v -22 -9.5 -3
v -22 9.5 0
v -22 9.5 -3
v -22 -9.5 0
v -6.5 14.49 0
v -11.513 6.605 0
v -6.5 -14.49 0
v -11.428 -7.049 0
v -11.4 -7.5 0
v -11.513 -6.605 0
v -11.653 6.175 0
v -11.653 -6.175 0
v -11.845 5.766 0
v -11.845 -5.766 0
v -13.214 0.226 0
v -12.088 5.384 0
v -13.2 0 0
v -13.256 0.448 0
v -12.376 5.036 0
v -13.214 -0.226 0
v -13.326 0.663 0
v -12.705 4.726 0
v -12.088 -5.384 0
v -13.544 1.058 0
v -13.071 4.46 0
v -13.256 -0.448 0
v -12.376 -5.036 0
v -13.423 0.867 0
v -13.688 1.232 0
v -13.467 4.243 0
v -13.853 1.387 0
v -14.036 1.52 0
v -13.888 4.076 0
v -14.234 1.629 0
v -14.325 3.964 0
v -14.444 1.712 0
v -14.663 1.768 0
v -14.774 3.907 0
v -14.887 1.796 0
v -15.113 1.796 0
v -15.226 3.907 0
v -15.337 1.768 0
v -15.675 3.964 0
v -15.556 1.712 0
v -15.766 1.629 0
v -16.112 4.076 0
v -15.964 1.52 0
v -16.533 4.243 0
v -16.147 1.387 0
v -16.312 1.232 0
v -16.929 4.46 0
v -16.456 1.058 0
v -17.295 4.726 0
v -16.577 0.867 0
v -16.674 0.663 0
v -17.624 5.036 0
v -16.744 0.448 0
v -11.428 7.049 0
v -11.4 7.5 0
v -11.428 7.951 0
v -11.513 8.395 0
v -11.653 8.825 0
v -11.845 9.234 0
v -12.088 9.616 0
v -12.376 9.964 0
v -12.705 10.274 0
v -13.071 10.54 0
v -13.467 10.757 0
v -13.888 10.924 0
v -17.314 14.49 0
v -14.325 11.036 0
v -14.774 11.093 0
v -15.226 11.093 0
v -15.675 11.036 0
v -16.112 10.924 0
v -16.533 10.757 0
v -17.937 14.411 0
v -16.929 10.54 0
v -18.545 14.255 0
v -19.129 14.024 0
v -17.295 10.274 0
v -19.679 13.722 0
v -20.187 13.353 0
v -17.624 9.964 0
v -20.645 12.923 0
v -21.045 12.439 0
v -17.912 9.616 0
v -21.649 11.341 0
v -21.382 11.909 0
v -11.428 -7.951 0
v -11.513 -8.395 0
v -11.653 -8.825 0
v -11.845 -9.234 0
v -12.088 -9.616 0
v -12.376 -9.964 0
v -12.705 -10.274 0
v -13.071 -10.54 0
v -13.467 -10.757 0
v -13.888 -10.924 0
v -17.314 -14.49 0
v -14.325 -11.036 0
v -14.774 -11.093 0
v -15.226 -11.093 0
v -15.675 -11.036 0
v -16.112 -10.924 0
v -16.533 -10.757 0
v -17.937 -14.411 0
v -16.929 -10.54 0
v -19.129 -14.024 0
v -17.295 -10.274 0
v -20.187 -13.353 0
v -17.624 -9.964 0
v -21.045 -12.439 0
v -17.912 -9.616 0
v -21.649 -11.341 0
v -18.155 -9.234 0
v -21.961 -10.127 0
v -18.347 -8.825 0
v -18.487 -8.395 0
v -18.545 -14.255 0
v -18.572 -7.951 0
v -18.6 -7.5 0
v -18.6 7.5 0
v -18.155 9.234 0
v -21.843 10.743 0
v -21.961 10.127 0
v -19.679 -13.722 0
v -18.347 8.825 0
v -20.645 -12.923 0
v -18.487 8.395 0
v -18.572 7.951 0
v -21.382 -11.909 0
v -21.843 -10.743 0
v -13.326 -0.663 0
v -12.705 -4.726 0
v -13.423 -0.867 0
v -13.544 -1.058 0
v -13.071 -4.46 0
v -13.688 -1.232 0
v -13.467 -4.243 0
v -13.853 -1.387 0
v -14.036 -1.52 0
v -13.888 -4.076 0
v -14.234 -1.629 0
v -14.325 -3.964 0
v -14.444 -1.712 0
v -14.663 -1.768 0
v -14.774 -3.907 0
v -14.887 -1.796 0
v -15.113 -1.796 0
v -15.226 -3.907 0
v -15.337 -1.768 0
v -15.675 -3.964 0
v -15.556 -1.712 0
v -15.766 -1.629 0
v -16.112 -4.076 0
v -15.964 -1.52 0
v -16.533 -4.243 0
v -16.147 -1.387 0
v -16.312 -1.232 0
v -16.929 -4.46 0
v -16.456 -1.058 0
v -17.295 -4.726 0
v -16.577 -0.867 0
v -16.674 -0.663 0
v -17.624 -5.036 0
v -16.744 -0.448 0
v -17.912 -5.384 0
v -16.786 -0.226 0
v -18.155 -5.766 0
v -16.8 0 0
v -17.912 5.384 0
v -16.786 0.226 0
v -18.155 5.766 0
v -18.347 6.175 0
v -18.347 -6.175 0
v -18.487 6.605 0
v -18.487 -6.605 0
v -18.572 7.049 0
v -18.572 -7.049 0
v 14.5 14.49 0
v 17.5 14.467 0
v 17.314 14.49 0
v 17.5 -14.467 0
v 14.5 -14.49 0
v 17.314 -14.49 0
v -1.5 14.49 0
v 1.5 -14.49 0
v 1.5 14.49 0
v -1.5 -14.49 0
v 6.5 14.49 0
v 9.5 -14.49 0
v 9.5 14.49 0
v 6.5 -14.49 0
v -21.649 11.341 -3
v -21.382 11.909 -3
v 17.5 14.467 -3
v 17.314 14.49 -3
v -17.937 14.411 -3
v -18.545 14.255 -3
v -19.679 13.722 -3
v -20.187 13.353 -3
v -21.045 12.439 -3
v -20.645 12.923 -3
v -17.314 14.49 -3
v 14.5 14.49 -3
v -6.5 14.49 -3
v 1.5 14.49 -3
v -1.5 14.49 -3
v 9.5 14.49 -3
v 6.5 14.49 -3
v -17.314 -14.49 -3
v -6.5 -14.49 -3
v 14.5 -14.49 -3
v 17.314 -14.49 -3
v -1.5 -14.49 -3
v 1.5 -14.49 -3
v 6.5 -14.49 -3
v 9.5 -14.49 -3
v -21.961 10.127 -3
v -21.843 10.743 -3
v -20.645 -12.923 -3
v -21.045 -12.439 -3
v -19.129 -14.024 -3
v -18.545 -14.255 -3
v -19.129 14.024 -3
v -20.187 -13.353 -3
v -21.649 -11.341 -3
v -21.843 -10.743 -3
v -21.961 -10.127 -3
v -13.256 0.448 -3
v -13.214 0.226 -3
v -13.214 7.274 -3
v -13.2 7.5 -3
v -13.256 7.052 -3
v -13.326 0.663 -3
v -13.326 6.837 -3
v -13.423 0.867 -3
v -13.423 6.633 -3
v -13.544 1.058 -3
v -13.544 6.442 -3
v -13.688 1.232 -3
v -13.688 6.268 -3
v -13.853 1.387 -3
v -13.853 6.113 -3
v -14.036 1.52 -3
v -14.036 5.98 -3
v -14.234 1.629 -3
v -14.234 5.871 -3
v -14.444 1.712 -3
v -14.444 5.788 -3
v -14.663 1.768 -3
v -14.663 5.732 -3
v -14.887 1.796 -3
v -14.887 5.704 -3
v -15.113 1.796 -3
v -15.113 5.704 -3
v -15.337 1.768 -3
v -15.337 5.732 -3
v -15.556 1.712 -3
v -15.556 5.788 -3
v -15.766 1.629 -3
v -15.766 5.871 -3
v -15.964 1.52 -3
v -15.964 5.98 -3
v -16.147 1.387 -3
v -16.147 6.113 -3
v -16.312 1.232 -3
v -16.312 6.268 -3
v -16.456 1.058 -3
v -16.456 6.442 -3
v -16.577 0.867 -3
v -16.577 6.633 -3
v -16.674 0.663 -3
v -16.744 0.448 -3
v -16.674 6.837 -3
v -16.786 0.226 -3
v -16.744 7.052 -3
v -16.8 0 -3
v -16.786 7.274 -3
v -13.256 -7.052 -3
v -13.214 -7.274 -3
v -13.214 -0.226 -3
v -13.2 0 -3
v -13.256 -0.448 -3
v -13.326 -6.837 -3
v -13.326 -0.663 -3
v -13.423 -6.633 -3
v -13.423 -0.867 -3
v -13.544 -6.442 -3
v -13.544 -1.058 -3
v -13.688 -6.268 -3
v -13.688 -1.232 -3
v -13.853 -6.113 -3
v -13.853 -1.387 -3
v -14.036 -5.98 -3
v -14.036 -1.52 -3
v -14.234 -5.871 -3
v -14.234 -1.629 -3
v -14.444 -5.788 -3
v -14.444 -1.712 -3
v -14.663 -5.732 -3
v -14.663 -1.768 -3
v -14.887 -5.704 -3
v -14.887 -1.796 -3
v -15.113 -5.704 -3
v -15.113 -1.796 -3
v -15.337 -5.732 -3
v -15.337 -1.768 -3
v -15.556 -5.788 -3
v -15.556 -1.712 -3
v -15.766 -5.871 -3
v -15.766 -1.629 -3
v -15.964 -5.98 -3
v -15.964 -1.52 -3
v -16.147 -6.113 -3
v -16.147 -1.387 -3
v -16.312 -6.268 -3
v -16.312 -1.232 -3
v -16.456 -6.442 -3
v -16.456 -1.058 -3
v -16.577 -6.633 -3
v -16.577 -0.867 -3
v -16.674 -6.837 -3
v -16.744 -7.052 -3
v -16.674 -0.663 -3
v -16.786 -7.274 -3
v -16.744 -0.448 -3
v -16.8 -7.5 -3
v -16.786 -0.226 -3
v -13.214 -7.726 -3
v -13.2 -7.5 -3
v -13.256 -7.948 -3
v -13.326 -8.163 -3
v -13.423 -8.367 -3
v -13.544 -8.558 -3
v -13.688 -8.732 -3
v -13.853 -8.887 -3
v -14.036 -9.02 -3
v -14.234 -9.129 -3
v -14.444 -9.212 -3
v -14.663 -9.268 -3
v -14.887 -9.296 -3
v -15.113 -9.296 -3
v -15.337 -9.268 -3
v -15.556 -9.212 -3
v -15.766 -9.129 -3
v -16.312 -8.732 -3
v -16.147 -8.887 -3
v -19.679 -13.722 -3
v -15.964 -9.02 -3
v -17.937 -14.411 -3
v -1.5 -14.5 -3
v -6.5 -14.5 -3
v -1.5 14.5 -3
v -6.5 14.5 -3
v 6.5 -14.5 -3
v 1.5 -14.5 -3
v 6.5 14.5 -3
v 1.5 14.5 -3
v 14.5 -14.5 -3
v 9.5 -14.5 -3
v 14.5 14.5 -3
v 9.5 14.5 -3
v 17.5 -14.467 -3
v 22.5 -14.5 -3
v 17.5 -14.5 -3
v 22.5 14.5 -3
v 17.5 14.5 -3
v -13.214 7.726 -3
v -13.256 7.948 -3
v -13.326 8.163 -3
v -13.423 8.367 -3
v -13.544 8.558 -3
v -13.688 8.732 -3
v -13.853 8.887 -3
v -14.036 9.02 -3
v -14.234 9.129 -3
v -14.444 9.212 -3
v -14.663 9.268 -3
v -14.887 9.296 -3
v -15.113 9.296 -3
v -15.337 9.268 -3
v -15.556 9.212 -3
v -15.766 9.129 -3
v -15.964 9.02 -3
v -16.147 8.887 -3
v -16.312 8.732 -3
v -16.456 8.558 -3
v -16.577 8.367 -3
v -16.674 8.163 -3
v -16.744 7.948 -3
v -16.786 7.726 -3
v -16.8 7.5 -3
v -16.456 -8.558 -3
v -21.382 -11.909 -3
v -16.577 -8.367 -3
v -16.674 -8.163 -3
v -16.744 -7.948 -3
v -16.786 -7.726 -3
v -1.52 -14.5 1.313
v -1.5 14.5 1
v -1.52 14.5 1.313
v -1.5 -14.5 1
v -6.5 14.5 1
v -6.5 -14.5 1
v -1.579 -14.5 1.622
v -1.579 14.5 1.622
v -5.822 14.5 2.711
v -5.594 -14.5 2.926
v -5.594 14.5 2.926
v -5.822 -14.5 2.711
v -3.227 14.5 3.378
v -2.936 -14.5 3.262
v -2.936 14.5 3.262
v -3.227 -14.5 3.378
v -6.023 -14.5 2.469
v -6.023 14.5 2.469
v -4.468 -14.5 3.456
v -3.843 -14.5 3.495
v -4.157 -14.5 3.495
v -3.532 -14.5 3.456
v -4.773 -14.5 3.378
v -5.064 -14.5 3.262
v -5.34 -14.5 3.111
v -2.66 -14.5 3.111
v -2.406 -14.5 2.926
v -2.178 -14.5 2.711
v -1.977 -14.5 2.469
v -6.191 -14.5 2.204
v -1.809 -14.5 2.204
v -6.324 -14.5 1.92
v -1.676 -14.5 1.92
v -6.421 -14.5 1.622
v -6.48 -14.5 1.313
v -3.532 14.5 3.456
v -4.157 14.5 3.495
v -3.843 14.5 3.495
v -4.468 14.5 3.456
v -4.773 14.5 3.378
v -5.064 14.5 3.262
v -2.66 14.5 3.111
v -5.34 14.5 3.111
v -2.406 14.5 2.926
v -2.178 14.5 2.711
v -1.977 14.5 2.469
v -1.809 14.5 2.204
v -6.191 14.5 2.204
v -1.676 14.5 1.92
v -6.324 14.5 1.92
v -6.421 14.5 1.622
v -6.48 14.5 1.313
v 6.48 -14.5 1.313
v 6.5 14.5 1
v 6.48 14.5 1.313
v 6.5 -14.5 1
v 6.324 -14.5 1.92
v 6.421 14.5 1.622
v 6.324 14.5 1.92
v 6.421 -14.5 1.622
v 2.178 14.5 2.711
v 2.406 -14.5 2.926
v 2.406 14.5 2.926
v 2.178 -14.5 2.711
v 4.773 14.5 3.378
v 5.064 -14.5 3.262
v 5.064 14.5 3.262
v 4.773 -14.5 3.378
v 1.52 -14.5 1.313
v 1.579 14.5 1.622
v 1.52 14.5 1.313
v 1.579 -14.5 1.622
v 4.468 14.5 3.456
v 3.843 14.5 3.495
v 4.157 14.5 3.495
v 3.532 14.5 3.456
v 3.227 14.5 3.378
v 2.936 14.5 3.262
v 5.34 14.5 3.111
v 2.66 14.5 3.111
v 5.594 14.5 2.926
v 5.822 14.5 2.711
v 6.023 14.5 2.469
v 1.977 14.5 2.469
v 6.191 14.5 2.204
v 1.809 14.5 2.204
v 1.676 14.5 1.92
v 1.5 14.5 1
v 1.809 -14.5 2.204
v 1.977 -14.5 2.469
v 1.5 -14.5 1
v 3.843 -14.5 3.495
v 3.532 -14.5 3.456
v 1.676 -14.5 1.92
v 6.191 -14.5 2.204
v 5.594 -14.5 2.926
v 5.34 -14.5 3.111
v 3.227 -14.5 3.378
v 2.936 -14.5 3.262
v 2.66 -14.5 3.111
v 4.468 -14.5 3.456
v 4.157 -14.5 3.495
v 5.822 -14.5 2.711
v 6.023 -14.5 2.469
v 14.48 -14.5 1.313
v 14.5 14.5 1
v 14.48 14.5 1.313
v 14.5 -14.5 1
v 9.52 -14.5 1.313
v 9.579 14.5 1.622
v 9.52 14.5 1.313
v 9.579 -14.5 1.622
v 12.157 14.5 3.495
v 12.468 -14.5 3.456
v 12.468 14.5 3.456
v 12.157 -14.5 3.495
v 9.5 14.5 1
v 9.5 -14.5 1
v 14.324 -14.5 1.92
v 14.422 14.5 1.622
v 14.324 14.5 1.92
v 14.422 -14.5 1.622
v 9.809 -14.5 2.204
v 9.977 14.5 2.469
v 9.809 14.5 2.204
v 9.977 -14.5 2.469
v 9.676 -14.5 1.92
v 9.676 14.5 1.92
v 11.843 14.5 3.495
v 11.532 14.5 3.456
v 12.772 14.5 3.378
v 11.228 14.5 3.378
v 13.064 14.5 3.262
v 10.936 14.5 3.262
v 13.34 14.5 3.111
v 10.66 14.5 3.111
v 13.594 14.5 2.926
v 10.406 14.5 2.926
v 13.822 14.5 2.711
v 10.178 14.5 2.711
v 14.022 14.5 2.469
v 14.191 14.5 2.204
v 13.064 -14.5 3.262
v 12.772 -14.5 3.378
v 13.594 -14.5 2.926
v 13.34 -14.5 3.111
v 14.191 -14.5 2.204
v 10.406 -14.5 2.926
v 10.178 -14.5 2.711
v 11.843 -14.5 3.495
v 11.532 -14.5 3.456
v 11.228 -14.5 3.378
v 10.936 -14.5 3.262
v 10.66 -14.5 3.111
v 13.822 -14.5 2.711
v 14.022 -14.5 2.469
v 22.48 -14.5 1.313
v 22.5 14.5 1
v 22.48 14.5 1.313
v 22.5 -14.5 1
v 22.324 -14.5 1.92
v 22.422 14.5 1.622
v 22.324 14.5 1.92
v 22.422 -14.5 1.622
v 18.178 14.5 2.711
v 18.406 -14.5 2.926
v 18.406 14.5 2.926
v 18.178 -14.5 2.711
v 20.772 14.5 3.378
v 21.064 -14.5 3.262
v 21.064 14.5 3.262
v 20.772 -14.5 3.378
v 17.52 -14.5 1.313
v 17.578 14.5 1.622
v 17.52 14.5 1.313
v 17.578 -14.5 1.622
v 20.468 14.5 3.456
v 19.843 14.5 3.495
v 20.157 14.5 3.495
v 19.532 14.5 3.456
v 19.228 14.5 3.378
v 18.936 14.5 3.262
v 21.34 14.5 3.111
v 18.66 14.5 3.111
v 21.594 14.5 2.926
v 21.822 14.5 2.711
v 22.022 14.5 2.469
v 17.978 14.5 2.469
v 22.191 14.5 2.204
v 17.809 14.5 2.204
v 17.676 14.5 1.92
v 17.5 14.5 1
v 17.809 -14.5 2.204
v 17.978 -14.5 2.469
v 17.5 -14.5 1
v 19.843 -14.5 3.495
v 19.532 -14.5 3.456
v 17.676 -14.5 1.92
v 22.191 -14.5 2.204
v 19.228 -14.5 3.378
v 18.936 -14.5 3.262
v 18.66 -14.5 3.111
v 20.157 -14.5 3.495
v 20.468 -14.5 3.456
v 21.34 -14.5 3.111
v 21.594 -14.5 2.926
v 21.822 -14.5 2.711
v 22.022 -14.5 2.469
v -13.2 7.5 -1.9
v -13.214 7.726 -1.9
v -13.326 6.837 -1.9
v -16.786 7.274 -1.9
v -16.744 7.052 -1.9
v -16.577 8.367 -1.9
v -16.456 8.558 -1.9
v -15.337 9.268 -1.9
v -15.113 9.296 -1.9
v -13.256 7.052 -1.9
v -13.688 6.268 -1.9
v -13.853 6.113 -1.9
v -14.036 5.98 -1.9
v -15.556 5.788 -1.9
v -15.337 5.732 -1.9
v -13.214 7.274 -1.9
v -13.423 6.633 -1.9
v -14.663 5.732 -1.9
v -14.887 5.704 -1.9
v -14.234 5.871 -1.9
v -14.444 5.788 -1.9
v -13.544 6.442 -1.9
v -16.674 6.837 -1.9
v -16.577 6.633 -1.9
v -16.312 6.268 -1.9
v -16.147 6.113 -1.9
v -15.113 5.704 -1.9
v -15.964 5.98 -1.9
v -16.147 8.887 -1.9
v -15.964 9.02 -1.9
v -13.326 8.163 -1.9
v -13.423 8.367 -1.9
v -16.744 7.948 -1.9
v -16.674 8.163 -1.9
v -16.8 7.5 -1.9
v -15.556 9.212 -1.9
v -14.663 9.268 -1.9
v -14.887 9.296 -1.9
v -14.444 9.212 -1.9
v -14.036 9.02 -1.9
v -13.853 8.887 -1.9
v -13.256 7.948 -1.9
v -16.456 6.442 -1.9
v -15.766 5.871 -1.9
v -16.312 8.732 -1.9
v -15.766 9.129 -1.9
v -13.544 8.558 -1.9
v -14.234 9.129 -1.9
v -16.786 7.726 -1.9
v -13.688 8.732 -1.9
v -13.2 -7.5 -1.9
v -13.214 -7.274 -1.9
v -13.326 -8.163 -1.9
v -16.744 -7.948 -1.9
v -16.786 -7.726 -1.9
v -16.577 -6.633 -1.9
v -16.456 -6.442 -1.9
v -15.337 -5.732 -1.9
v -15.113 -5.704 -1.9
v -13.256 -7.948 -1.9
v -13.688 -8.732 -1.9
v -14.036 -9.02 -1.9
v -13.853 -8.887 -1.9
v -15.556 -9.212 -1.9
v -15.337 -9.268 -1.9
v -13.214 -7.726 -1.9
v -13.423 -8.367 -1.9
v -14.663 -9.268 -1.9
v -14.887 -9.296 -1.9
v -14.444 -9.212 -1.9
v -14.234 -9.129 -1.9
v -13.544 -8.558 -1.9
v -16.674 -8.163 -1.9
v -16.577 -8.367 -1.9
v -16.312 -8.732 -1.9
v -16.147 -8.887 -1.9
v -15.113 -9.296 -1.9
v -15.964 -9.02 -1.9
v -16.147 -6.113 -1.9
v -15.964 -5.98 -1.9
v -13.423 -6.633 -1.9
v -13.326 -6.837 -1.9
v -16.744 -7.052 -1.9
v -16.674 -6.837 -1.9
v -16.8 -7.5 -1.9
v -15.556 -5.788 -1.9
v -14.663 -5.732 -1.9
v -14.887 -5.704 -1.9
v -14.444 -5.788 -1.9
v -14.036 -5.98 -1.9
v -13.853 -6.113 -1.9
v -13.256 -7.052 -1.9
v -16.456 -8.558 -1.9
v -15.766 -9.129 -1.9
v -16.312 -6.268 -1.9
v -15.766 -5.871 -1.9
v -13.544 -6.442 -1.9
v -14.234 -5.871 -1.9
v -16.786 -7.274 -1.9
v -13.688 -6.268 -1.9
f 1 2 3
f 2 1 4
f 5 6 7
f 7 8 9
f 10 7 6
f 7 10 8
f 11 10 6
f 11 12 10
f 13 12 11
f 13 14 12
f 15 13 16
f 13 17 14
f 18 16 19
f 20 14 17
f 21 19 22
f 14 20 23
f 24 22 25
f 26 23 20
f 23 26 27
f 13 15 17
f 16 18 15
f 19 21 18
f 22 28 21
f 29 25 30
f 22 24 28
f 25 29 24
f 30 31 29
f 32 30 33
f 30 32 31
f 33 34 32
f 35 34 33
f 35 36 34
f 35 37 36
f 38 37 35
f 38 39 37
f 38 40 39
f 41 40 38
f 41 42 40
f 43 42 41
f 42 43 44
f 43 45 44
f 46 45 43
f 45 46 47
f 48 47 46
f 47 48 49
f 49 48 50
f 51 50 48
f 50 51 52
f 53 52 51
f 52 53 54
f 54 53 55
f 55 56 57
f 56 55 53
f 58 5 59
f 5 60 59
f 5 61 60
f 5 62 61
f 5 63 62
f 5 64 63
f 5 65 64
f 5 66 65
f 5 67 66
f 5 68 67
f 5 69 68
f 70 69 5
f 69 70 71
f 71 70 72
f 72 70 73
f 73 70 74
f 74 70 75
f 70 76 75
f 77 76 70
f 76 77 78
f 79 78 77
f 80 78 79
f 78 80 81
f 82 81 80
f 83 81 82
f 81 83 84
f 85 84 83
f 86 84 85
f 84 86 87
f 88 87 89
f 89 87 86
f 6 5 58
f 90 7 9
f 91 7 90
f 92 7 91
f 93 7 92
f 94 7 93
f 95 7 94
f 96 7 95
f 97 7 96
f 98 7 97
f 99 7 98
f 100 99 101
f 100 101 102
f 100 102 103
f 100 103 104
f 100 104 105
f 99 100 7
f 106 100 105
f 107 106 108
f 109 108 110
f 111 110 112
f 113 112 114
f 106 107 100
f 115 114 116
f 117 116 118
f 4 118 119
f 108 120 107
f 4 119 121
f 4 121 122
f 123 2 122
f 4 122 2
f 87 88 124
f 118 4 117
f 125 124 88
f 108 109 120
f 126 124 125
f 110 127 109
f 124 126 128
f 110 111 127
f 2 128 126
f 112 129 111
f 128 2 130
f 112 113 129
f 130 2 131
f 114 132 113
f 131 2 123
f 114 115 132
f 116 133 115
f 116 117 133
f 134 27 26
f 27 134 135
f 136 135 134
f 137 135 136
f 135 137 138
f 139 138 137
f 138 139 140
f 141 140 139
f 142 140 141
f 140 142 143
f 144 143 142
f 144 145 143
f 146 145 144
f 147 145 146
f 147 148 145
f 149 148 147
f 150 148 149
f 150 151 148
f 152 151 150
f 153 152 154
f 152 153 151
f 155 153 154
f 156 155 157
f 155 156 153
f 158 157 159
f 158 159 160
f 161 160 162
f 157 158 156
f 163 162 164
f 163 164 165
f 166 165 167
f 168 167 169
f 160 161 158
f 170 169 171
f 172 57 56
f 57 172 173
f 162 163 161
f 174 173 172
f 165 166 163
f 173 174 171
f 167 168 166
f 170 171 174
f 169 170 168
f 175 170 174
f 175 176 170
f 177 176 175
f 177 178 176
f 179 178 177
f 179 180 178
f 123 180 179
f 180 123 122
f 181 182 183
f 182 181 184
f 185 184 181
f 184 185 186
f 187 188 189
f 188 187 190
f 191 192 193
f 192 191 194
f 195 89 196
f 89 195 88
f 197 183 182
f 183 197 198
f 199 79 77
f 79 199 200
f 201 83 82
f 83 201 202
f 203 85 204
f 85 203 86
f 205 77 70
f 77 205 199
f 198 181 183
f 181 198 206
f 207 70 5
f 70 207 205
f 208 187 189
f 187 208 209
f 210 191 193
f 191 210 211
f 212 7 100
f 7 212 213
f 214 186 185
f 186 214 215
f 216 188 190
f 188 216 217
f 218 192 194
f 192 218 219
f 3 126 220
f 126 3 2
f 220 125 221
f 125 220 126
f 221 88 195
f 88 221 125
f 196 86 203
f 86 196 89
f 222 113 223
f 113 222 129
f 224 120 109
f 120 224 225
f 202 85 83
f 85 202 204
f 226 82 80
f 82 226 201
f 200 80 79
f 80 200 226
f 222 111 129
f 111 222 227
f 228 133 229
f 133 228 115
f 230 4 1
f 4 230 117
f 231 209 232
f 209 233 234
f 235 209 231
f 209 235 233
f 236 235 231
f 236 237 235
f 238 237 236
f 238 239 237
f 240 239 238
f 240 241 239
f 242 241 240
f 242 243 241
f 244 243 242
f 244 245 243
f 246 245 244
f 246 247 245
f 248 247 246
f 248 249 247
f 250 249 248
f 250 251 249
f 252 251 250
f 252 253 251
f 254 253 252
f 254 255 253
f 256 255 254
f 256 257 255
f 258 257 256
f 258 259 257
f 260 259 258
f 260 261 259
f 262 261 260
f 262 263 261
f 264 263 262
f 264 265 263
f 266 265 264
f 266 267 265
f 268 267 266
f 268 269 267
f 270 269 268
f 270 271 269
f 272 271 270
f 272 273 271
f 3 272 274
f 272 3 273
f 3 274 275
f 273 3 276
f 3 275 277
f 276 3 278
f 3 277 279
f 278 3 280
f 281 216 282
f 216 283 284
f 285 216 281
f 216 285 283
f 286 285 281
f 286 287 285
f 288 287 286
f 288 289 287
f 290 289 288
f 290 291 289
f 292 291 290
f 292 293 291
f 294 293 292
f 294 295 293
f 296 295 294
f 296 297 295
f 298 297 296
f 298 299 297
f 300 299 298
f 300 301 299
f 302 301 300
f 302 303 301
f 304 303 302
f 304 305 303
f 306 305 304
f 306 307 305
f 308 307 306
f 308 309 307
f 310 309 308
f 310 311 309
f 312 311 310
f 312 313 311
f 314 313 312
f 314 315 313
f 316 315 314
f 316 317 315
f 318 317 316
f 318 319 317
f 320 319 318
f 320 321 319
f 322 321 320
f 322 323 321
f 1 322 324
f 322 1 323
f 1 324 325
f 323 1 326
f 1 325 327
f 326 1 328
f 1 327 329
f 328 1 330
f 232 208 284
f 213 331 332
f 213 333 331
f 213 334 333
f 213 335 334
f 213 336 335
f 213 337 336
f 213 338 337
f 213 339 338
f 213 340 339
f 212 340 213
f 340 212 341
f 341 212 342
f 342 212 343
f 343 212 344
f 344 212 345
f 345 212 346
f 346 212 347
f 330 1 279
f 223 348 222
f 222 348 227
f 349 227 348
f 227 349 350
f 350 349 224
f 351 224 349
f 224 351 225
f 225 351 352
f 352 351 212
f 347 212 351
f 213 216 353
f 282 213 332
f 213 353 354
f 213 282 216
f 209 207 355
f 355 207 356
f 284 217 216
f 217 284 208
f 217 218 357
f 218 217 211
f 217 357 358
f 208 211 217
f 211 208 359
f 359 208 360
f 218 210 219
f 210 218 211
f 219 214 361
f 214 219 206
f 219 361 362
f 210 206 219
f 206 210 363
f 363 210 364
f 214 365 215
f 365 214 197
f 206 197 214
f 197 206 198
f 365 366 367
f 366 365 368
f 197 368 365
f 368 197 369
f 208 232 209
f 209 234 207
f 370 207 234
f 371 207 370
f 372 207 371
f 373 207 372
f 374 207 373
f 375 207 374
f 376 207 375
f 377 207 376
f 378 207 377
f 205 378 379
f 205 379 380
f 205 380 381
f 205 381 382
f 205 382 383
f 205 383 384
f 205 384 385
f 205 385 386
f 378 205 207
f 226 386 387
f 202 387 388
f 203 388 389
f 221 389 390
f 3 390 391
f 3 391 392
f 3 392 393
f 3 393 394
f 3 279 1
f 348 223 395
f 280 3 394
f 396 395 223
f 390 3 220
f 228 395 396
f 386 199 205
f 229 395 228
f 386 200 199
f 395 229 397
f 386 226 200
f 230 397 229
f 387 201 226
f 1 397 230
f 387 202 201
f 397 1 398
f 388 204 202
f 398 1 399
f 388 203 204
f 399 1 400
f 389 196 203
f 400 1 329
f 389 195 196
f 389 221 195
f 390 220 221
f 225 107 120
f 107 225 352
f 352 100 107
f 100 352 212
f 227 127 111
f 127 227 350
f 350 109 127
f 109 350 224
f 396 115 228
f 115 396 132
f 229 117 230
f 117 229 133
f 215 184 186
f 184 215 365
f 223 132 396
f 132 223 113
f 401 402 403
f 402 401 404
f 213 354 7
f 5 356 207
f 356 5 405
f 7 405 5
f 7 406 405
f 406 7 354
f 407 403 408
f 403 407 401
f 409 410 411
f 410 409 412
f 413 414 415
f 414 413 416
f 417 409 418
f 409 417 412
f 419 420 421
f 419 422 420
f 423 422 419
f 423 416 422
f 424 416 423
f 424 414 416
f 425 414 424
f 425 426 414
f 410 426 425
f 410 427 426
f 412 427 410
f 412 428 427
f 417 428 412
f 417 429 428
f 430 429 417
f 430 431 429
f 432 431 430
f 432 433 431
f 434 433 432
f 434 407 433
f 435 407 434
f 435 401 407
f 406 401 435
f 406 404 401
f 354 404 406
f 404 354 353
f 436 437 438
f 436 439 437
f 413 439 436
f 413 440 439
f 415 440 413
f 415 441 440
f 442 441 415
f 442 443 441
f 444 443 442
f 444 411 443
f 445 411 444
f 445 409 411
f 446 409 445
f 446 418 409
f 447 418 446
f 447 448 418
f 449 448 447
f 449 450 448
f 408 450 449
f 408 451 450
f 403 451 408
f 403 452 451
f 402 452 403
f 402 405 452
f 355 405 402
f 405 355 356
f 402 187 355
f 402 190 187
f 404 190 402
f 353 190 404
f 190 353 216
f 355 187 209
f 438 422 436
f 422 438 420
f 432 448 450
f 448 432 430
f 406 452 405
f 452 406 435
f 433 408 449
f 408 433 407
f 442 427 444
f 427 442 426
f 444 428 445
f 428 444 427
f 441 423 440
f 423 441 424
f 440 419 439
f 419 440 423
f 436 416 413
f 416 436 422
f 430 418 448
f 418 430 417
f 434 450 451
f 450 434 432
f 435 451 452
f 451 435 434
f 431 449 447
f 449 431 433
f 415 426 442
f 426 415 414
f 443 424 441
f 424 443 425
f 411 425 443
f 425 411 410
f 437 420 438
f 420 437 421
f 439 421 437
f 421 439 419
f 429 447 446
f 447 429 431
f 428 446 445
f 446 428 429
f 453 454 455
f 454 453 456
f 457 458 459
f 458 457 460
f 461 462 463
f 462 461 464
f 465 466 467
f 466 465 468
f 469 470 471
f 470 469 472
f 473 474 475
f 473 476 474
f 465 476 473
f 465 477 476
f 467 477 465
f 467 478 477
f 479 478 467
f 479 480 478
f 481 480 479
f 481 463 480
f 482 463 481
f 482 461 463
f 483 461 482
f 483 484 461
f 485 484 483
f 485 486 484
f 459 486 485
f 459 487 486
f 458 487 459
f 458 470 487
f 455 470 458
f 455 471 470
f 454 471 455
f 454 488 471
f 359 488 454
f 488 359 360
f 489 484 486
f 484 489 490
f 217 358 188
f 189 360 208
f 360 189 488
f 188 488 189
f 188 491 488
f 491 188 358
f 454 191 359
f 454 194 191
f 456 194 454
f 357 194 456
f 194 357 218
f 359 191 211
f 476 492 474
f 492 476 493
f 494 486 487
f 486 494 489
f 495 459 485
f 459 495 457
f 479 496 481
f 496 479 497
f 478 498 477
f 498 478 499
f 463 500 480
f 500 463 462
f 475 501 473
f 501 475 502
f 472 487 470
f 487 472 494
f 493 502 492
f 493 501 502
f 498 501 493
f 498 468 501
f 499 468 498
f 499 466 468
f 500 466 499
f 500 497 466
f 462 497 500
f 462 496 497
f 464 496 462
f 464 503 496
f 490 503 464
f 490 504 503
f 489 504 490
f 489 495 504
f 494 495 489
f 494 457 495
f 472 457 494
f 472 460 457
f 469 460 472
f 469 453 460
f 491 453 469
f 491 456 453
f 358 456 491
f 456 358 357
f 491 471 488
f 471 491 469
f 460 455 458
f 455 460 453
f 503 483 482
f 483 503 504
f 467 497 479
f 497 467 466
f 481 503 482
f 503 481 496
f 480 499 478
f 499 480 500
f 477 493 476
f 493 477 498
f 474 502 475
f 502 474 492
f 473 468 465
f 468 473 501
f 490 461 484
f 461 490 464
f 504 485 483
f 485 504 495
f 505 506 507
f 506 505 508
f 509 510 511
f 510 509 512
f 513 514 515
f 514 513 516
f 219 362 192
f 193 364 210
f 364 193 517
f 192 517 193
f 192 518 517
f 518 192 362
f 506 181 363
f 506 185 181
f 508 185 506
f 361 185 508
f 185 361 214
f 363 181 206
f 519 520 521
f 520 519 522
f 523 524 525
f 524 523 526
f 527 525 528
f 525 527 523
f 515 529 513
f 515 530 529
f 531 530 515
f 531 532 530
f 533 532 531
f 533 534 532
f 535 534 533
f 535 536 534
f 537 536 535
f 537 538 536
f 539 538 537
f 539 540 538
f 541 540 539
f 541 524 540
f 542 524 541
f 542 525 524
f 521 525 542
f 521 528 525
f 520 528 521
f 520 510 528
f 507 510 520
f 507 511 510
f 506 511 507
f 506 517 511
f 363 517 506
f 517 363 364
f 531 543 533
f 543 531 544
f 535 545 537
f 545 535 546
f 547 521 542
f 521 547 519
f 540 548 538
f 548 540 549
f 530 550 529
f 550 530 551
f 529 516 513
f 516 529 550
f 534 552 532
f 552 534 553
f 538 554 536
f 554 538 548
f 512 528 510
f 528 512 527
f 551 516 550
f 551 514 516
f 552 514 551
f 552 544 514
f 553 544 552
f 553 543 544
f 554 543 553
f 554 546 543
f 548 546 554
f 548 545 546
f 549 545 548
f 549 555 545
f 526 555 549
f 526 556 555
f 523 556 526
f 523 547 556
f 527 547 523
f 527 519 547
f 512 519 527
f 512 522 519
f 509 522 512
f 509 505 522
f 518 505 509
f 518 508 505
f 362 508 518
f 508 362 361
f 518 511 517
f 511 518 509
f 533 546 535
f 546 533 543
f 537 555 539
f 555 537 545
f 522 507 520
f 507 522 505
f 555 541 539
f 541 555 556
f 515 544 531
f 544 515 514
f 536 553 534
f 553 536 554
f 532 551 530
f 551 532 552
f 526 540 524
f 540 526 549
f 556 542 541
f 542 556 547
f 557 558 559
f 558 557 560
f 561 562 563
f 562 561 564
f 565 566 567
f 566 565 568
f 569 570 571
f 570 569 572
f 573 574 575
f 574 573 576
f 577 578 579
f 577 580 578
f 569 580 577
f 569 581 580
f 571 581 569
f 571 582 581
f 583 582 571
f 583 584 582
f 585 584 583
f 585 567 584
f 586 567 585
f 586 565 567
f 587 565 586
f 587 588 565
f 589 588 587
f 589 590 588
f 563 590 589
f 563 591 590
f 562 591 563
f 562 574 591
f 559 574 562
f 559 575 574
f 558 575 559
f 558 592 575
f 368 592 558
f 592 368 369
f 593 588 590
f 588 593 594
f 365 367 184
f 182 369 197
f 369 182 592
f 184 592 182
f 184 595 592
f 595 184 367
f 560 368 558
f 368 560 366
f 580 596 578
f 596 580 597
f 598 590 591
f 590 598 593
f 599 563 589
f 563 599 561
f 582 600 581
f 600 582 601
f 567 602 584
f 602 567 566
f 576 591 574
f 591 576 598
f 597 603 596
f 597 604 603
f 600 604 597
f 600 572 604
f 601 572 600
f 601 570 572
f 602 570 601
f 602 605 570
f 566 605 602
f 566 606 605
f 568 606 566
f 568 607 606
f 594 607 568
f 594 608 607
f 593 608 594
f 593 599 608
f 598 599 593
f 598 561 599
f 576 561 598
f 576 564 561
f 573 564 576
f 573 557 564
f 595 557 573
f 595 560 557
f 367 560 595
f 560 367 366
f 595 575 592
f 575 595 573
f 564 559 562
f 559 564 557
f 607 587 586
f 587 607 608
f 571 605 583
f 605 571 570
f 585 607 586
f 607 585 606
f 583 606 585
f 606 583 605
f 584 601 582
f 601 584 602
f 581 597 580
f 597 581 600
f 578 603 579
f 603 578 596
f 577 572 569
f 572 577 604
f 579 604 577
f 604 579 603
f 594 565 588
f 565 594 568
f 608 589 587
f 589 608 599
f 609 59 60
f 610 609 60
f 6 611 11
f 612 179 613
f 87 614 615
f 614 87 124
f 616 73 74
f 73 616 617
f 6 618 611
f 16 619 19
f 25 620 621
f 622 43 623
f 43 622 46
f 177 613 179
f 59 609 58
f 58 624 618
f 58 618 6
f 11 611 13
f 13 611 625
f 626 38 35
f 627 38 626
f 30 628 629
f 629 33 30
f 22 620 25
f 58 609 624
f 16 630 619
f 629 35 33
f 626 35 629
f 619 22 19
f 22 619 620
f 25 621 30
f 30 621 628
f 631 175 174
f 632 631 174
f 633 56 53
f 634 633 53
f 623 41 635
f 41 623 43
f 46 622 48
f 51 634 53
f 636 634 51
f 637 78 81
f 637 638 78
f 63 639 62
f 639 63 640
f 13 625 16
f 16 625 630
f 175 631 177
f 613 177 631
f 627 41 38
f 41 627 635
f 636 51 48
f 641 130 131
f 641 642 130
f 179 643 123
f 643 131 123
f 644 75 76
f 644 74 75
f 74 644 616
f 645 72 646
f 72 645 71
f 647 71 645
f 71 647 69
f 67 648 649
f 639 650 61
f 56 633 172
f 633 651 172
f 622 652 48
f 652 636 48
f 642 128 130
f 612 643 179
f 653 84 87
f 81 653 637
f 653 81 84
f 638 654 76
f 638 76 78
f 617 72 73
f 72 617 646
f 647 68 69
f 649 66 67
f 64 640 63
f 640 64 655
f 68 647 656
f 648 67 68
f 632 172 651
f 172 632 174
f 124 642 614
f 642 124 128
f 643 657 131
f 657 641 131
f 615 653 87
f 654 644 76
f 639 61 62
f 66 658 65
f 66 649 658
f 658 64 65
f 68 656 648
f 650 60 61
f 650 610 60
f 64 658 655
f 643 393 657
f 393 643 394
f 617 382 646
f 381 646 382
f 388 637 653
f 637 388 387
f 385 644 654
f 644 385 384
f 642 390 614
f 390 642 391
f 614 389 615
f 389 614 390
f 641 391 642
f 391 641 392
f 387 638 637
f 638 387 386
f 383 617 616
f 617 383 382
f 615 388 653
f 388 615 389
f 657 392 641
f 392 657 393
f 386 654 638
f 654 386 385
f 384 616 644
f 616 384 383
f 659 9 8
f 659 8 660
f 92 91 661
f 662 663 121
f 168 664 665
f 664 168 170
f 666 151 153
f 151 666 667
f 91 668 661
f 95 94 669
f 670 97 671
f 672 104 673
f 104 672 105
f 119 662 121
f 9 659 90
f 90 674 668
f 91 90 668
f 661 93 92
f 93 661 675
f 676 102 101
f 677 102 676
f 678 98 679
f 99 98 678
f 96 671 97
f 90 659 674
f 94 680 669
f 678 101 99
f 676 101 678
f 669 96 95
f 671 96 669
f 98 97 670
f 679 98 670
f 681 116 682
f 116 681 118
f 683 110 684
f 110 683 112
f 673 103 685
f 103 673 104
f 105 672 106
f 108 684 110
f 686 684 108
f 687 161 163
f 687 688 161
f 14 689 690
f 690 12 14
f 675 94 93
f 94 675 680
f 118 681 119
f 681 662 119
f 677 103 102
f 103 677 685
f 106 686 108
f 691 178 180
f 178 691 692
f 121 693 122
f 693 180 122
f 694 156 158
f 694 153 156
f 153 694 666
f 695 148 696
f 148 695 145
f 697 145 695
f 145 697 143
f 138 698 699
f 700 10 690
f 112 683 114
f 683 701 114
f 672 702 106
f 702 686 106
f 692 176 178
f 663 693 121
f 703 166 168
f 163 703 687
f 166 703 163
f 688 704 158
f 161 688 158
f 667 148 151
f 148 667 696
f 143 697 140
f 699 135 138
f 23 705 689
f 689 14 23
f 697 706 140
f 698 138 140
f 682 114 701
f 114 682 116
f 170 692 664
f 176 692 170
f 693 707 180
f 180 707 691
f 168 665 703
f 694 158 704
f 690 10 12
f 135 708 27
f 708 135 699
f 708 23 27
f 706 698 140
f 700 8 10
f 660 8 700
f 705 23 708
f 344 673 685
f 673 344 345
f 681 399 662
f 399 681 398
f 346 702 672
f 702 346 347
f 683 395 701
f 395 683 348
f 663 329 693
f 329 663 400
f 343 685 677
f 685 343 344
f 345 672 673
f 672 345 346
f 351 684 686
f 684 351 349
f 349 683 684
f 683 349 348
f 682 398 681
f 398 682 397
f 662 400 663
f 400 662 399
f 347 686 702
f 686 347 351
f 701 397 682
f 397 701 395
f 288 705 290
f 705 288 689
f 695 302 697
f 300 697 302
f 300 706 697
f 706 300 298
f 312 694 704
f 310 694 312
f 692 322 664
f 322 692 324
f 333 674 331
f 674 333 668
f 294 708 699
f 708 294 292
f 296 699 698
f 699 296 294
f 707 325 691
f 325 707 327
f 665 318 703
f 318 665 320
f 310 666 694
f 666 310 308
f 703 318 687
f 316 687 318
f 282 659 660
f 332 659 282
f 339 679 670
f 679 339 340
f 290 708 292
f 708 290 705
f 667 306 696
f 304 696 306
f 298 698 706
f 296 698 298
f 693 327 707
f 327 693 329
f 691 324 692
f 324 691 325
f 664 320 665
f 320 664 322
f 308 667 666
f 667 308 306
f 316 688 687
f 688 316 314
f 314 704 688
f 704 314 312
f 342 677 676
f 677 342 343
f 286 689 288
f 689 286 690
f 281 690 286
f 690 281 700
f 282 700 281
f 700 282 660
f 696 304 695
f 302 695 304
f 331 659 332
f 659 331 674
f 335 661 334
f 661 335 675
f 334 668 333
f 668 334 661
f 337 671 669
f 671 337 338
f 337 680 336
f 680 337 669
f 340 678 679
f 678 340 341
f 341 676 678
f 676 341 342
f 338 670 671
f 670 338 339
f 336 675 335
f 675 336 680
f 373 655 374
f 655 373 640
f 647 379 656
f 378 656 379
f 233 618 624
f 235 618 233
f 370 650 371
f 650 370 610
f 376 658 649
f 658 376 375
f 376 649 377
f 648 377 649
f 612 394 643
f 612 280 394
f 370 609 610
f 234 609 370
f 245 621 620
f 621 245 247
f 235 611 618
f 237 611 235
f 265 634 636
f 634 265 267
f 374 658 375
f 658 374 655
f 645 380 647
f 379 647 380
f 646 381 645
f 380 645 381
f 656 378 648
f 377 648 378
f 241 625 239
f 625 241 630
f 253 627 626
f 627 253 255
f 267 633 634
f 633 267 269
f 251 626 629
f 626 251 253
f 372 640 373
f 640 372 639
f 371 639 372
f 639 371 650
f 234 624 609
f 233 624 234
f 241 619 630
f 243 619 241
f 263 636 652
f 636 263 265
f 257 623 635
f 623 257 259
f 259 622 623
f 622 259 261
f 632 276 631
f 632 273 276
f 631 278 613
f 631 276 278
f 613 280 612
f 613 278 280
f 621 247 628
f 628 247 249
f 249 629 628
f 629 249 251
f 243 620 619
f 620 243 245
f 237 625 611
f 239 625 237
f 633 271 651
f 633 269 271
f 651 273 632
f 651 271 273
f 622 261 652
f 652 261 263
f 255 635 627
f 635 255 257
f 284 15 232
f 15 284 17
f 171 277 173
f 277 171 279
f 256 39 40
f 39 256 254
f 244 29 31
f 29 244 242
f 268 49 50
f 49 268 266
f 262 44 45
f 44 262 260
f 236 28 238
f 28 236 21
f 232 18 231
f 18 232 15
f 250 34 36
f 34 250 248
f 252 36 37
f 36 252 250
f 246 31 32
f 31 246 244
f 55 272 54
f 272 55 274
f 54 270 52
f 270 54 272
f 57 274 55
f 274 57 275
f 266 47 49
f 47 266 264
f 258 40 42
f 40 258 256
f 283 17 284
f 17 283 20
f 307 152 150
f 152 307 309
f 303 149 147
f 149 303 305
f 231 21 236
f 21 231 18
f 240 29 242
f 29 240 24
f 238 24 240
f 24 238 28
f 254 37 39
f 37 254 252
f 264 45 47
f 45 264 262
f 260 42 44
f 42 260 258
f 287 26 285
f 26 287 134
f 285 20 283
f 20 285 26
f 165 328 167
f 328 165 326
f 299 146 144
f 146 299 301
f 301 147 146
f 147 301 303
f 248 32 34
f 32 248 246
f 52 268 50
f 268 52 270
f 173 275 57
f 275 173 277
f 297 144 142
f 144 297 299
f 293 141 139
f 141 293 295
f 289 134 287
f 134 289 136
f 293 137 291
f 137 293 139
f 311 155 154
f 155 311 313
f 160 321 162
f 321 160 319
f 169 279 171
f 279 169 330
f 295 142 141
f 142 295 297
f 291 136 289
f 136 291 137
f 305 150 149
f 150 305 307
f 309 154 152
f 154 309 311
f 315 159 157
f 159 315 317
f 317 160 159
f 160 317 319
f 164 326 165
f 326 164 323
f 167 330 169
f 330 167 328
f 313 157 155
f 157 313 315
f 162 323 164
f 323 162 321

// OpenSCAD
$fn = 50;


difference() {
	union() {
		translate(v = [0, 0, -3]) {
			hull() {
				translate(v = [-17.0000000000, 9.5000000000, 0]) {
					cylinder(h = 3, r = 5);
				}
				translate(v = [17.0000000000, 9.5000000000, 0]) {
					cylinder(h = 3, r = 5);
				}
				translate(v = [-17.0000000000, -9.5000000000, 0]) {
					cylinder(h = 3, r = 5);
				}
				translate(v = [17.0000000000, -9.5000000000, 0]) {
					cylinder(h = 3, r = 5);
				}
			}
		}
		translate(v = [-4.0000000000, 14.5000000000, -1.5000000000]) {
			rotate(a = [90, 0, 0]) {
				hull() {
					translate(v = [-0.0000000000, 2.5000000000, 0]) {
						cylinder(h = 29, r = 2.5000000000);
					}
					translate(v = [0.0000000000, 2.5000000000, 0]) {
						cylinder(h = 29, r = 2.5000000000);
					}
					translate(v = [-0.0000000000, -2.5000000000, 0]) {
						cylinder(h = 29, r = 2.5000000000);
					}
					translate(v = [0.0000000000, -2.5000000000, 0]) {
						cylinder(h = 29, r = 2.5000000000);
					}
				}
			}
		}
		translate(v = [4.0000000000, 14.5000000000, -1.5000000000]) {
			rotate(a = [90, 0, 0]) {
				hull() {
					translate(v = [-0.0000000000, 2.5000000000, 0]) {
						cylinder(h = 29, r = 2.5000000000);
					}
					translate(v = [0.0000000000, 2.5000000000, 0]) {
						cylinder(h = 29, r = 2.5000000000);
					}
					translate(v = [-0.0000000000, -2.5000000000, 0]) {
						cylinder(h = 29, r = 2.5000000000);
					}
					translate(v = [0.0000000000, -2.5000000000, 0]) {
						cylinder(h = 29, r = 2.5000000000);
					}
				}
			}
		}
		translate(v = [12.0000000000, 14.5000000000, -1.5000000000]) {
			rotate(a = [90, 0, 0]) {
				hull() {
					translate(v = [-0.0000000000, 2.5000000000, 0]) {
						cylinder(h = 29, r = 2.5000000000);
					}
					translate(v = [0.0000000000, 2.5000000000, 0]) {
						cylinder(h = 29, r = 2.5000000000);
					}
					translate(v = [-0.0000000000, -2.5000000000, 0]) {
						cylinder(h = 29, r = 2.5000000000);
					}
					translate(v = [0.0000000000, -2.5000000000, 0]) {
						cylinder(h = 29, r = 2.5000000000);
					}
				}
			}
		}
		translate(v = [20.0000000000, 14.5000000000, -1.5000000000]) {
			rotate(a = [90, 0, 0]) {
				hull() {
					translate(v = [-0.0000000000, 2.5000000000, 0]) {
						cylinder(h = 29, r = 2.5000000000);
					}
					translate(v = [0.0000000000, 2.5000000000, 0]) {
						cylinder(h = 29, r = 2.5000000000);
					}
					translate(v = [-0.0000000000, -2.5000000000, 0]) {
						cylinder(h = 29, r = 2.5000000000);
					}
					translate(v = [0.0000000000, -2.5000000000, 0]) {
						cylinder(h = 29, r = 2.5000000000);
					}
				}
			}
		}
	}
	union() {
		translate(v = [-15.0000000000, 7.5000000000, 0]) {
			rotate(a = [0, 0, 0]) {
				difference() {
					union() {
						#translate(v = [0, 0, -3.0000000000]) {
							cylinder(h = 3, r = 1.5000000000);
						}
						#translate(v = [0, 0, -1.9000000000]) {
							cylinder(h = 1.9000000000, r1 = 1.8000000000, r2 = 3.6000000000);
						}
						#translate(v = [0, 0, -3.0000000000]) {
							cylinder(h = 3, r = 1.8000000000);
						}
						#translate(v = [0, 0, -3.0000000000]) {
							cylinder(h = 3, r = 1.5000000000);
						}
					}
					union();
				}
			}
		}
		translate(v = [-15.0000000000, -7.5000000000, 0]) {
			rotate(a = [0, 0, 0]) {
				difference() {
					union() {
						#translate(v = [0, 0, -3.0000000000]) {
							cylinder(h = 3, r = 1.5000000000);
						}
						#translate(v = [0, 0, -1.9000000000]) {
							cylinder(h = 1.9000000000, r1 = 1.8000000000, r2 = 3.6000000000);
						}
						#translate(v = [0, 0, -3.0000000000]) {
							cylinder(h = 3, r = 1.8000000000);
						}
						#translate(v = [0, 0, -3.0000000000]) {
							cylinder(h = 3, r = 1.5000000000);
						}
					}
					union();
				}
			}
		}
		translate(v = [-250.0000000000, -250.0000000000, -503]) {
			cube(size = [500, 500, 500]);
		}
		translate(v = [-250.0000000000, -250.0000000000, -503]) {
			cube(size = [500, 500, 500]);
		}
		translate(v = [-250.0000000000, -250.0000000000, -503]) {
			cube(size = [500, 500, 500]);
		}
		translate(v = [-15.0000000000, -7.5000000000, -100.0000000000]) {
			cylinder(h = 200, r = 1.8000000000);
		}
		translate(v = [-15.0000000000, 7.5000000000, -100.0000000000]) {
			cylinder(h = 200, r = 1.8000000000);
		}
		translate(v = [-15.0000000000, -7.5000000000, -100.0000000000]) {
			cylinder(h = 200, r = 1.8000000000);
		}
		translate(v = [-15.0000000000, 0.0000000000, -100.0000000000]) {
			cylinder(h = 200, r = 1.8000000000);
		}
		translate(v = [-15.0000000000, 7.5000000000, -100.0000000000]) {
			cylinder(h = 200, r = 1.8000000000);
		}
		translate(v = [-15.0000000000, -7.5000000000, -100.0000000000]) {
			cylinder(h = 200, r = 1.8000000000);
		}
		translate(v = [-15.0000000000, 0.0000000000, -100.0000000000]) {
			cylinder(h = 200, r = 1.8000000000);
		}
		translate(v = [-15.0000000000, 7.5000000000, -100.0000000000]) {
			cylinder(h = 200, r = 1.8000000000);
		}
		translate(v = [-15.0000000000, -7.5000000000, -100.0000000000]) {
			cylinder(h = 200, r = 1.8000000000);
		}
		translate(v = [-15.0000000000, 0.0000000000, -100.0000000000]) {
			cylinder(h = 200, r = 1.8000000000);
		}
		translate(v = [-15.0000000000, 7.5000000000, -100.0000000000]) {
			cylinder(h = 200, r = 1.8000000000);
		}
	}
}
